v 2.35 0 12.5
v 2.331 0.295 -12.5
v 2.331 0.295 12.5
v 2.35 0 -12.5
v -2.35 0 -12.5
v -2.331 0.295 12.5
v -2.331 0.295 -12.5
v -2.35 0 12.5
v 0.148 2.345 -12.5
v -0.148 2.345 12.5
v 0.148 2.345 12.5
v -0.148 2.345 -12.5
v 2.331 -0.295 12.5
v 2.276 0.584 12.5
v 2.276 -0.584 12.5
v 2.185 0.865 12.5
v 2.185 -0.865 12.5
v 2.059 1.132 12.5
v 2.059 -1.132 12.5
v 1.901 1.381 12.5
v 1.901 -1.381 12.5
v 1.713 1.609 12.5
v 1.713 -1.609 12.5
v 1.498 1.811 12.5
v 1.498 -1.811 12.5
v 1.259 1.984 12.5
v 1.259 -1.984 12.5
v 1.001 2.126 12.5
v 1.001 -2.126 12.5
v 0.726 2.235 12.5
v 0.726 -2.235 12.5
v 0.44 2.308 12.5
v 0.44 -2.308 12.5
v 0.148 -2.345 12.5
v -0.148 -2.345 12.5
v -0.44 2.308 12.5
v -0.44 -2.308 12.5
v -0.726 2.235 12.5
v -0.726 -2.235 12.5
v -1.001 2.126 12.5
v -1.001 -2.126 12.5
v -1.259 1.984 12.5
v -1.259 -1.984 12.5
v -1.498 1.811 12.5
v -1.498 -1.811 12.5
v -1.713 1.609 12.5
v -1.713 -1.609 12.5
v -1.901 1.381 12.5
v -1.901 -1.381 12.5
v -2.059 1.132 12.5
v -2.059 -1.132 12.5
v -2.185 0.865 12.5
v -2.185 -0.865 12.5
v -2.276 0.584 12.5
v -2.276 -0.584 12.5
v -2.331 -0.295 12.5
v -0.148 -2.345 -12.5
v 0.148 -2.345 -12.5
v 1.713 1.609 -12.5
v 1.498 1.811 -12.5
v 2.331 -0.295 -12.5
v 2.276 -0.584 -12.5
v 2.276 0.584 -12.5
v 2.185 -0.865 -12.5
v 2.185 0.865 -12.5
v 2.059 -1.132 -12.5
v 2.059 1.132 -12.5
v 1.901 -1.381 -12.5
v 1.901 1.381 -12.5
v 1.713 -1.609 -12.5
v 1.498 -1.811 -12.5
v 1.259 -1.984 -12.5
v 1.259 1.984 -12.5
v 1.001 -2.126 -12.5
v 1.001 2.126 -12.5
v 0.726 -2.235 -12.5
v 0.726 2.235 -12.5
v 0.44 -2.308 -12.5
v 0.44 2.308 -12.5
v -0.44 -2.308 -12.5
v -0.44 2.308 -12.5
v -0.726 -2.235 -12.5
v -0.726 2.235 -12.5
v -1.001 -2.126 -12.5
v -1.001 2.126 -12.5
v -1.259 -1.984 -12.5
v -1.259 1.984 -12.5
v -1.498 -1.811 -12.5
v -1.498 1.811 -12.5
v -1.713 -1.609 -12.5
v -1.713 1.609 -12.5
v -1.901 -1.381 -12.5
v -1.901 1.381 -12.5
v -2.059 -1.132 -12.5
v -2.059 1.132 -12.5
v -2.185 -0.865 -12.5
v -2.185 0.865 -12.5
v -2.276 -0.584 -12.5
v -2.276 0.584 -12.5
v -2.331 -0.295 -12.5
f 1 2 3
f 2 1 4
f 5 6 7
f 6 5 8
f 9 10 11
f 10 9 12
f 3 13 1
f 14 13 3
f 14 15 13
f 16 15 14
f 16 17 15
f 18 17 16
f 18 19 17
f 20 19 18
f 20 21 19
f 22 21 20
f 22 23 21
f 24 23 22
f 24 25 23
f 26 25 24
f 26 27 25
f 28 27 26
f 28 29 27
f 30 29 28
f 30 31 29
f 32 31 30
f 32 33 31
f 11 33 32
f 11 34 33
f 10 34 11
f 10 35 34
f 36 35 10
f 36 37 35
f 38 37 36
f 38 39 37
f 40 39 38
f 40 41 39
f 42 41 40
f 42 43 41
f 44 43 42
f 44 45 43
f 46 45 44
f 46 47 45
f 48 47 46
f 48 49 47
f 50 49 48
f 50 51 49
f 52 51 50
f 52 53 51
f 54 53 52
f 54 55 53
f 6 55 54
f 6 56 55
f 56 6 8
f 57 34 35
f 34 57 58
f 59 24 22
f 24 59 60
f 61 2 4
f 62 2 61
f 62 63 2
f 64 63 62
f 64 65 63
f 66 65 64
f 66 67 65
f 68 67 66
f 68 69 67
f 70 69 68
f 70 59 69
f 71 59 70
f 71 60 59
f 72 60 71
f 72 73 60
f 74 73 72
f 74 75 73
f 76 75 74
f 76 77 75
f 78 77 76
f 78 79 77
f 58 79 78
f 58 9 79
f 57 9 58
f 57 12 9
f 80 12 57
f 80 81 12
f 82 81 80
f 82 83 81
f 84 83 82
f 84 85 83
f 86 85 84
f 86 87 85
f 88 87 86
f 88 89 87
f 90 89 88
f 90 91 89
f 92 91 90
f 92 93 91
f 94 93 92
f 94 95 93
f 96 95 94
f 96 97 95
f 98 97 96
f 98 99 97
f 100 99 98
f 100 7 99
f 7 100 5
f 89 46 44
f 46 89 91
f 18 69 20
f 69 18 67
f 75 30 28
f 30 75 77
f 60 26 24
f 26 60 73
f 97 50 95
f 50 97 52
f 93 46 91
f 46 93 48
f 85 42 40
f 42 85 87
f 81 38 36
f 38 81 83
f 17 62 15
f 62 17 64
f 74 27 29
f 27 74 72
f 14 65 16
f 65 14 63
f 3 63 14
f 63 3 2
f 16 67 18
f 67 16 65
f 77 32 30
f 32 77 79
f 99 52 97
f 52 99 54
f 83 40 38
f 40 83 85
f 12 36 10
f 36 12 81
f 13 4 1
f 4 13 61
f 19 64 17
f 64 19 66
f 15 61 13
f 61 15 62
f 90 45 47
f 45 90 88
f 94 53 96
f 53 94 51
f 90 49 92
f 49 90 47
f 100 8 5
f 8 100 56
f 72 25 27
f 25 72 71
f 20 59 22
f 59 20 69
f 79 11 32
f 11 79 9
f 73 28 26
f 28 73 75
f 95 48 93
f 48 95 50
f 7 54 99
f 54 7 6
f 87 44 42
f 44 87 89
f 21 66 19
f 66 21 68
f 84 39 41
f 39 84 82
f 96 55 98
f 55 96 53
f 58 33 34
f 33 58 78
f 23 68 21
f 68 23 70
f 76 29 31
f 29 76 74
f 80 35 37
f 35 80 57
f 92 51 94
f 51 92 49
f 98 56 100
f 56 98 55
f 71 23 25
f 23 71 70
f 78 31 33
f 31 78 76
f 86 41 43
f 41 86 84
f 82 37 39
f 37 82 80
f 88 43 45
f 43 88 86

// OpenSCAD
$fn = 50;


difference() {
	union() {
		translate(v = [0, 0, -12.5000000000]) {
			cylinder(h = 25, r = 2.3500000000);
		}
	}
	union() {
		translate(v = [0, 0, -100.0000000000]) {
			cylinder(h = 200, r = 0);
		}
	}
}
